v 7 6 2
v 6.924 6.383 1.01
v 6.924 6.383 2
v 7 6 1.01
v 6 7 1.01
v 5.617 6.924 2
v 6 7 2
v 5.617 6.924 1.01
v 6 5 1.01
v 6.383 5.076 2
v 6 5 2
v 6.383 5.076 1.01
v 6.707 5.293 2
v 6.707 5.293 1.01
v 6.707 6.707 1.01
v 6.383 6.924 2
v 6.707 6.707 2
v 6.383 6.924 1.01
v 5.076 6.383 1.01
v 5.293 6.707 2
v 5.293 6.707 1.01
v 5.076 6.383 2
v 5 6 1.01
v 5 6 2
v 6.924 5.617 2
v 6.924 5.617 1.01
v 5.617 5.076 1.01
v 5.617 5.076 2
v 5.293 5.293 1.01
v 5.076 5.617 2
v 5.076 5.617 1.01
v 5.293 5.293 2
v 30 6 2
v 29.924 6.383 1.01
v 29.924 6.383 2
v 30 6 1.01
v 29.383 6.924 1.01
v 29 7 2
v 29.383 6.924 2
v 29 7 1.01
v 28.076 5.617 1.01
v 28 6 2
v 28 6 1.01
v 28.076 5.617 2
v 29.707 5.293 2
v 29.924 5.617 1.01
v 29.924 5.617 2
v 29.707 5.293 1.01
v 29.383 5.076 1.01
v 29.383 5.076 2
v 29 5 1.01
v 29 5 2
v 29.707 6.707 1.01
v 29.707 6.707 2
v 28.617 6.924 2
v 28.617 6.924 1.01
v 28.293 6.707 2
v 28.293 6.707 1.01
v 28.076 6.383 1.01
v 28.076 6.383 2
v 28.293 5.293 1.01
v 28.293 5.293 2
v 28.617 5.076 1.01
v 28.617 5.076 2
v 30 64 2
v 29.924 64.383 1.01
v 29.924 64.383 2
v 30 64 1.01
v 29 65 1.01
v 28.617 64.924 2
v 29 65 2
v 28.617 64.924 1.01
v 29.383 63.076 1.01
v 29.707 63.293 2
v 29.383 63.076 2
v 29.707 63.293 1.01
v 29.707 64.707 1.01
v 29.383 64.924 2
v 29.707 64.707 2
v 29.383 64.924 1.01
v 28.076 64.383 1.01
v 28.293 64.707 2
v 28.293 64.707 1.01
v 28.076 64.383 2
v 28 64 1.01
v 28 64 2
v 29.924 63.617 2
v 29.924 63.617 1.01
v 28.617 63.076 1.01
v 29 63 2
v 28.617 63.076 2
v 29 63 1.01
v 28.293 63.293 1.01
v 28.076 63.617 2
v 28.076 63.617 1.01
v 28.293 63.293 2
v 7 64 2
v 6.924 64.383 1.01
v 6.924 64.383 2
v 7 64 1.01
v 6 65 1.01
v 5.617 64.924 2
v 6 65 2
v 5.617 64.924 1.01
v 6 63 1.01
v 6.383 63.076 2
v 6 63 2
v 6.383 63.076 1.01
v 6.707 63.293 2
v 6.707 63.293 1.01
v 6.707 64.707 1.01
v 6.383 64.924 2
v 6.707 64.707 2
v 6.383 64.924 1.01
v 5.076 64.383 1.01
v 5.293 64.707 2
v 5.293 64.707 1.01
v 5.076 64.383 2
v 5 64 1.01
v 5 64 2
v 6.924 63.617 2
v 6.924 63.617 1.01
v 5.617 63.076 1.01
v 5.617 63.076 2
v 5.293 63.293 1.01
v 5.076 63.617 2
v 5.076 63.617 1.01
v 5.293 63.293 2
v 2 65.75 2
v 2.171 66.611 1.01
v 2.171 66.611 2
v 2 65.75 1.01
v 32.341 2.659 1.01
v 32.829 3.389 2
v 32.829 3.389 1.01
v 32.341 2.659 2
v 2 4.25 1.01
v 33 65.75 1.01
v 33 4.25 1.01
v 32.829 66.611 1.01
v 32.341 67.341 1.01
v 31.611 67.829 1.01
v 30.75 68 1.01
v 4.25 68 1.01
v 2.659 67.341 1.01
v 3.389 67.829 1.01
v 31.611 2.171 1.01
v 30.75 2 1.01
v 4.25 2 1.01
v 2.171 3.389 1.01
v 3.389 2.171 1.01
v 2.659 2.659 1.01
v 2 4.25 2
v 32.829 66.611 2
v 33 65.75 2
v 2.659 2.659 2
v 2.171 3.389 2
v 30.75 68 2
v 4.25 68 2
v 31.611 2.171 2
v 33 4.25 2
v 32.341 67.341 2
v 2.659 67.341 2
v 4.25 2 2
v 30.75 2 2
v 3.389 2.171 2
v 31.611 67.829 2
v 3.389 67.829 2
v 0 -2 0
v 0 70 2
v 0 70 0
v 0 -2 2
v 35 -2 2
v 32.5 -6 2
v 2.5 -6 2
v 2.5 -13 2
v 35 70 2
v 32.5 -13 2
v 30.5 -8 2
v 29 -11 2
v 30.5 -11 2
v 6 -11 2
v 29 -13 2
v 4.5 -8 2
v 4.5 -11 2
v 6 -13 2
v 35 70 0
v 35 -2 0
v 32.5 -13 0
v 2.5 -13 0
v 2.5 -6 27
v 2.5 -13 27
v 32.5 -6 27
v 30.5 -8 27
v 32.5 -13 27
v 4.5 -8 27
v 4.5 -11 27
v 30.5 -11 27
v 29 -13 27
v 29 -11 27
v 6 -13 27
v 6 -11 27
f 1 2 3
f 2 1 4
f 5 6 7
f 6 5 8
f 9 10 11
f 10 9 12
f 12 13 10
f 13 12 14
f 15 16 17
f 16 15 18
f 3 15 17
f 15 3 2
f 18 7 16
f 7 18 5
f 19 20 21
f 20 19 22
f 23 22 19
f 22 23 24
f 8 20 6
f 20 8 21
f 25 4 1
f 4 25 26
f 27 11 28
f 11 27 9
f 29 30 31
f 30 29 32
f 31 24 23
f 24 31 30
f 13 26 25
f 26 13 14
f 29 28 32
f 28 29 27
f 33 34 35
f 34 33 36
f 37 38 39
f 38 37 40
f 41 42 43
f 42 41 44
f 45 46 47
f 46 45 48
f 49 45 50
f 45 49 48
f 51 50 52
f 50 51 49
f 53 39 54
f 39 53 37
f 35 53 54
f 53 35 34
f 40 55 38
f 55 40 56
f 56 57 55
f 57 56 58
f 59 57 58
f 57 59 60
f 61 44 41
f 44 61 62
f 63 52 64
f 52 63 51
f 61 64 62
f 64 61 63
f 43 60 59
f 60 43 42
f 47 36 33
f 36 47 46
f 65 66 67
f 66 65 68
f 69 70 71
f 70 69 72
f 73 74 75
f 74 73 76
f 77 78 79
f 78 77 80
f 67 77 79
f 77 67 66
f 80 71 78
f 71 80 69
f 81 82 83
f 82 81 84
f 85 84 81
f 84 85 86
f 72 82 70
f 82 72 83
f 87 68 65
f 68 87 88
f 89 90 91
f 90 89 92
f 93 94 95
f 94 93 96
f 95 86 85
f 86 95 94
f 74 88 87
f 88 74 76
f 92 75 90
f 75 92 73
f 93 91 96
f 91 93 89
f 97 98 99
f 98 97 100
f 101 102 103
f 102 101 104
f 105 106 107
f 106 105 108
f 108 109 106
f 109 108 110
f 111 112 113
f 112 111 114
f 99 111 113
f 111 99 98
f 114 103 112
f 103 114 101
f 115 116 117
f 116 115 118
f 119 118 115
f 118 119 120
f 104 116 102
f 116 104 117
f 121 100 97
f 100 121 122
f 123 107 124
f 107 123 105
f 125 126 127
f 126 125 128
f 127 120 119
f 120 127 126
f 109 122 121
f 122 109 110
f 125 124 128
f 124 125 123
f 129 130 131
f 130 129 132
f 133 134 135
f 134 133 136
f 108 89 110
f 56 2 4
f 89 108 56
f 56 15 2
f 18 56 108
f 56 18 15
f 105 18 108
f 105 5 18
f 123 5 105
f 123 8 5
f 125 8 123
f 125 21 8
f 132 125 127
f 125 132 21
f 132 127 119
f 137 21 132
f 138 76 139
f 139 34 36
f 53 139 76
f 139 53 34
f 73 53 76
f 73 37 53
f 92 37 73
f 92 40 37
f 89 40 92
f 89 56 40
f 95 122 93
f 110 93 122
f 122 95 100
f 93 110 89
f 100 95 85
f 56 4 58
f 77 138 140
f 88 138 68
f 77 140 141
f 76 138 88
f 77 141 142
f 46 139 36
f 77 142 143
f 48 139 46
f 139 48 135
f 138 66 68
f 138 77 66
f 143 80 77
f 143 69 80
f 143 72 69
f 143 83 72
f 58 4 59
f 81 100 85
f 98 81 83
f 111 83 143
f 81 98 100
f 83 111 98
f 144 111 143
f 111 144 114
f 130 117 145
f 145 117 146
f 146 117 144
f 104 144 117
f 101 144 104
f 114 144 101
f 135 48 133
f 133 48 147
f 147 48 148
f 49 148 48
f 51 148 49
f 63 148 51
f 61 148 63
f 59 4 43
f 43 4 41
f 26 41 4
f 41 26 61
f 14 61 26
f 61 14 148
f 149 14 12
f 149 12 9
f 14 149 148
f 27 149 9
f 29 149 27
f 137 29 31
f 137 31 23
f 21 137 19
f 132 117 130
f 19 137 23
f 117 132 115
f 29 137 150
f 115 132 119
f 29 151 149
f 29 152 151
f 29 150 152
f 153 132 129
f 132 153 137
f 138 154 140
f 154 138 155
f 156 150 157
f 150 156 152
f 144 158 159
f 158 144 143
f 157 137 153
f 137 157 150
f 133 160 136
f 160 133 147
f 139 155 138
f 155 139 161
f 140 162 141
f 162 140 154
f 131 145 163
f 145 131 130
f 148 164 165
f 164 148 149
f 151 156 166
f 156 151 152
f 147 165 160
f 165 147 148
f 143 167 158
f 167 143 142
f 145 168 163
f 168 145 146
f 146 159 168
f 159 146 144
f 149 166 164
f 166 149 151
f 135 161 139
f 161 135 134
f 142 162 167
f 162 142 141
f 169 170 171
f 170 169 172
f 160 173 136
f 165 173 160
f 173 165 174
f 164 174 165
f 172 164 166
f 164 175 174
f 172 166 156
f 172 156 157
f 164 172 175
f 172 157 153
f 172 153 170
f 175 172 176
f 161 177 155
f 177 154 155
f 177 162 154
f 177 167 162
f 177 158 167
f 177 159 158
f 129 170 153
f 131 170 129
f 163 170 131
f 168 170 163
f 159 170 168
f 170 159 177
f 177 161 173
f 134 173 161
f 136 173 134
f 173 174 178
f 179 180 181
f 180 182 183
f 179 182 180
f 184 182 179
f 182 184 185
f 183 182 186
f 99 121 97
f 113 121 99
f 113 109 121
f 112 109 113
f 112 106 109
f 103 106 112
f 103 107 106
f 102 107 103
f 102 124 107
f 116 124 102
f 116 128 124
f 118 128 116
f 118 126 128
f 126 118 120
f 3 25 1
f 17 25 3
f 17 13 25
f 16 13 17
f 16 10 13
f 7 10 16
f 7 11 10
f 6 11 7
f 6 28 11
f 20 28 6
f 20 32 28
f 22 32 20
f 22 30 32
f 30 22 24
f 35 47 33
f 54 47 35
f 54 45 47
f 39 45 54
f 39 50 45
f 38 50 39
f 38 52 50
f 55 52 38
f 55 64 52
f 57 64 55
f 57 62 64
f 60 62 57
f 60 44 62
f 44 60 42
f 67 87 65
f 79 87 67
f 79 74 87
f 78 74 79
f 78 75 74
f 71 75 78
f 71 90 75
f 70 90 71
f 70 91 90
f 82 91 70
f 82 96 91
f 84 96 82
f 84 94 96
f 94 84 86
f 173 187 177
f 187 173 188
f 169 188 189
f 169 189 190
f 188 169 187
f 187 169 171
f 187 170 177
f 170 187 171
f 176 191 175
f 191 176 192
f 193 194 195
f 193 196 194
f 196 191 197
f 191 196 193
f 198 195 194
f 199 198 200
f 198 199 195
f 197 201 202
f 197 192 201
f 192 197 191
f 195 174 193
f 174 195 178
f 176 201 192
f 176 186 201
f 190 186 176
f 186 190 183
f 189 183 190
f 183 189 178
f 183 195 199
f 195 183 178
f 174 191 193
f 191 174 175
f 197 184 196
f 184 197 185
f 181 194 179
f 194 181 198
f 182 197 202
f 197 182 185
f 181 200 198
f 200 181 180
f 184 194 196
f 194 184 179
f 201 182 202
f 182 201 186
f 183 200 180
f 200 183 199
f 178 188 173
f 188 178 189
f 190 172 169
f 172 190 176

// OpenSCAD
    
//cylinder(d=2.5, h=5, $fn=16);


module PiZero()
{
    w=65;
    h=30;
    t=1;

    d=3.5;
    dd=2;
    hd=3.5;

    difference() {
        hull()
            for (i = [[d/2,d/2,0], [h-d/2,d/2,0], [h-d/2,w-d/2,0], [d/2,w-d/2,0]])
                translate(i)
                    cylinder(d=d+1, h=t, $fn=16);
        for (i = [[hd,hd,-t/2], [h-hd,hd,-t/2], [h-hd,w-hd,-t/2], [hd,w-hd,-t/2]])
            translate(i)
                cylinder(d=dd, h=t*2, $fn=16);
    }
}

union() {
    difference() {
        translate([0,0,0])
            cube([30+5,65+5,2]);

        translate([2.5,2.5,1.01])
            PiZero();
    }


    translate([0,0,2])
        difference() {
            translate([2.5,-13,0])
                cube([30,7,25]);
            translate([4.5,-11,-0.005])
                cube([26,3,25.01]);
            translate([6,-13.01,-0.005])
                cube([23,3,25.01]);
        }

    hull() {
        translate([2.5,-13,0])
            cube([30,7,2]);

        translate([0,-2,0])
            cube([30+5,2,2]);
    }
}
